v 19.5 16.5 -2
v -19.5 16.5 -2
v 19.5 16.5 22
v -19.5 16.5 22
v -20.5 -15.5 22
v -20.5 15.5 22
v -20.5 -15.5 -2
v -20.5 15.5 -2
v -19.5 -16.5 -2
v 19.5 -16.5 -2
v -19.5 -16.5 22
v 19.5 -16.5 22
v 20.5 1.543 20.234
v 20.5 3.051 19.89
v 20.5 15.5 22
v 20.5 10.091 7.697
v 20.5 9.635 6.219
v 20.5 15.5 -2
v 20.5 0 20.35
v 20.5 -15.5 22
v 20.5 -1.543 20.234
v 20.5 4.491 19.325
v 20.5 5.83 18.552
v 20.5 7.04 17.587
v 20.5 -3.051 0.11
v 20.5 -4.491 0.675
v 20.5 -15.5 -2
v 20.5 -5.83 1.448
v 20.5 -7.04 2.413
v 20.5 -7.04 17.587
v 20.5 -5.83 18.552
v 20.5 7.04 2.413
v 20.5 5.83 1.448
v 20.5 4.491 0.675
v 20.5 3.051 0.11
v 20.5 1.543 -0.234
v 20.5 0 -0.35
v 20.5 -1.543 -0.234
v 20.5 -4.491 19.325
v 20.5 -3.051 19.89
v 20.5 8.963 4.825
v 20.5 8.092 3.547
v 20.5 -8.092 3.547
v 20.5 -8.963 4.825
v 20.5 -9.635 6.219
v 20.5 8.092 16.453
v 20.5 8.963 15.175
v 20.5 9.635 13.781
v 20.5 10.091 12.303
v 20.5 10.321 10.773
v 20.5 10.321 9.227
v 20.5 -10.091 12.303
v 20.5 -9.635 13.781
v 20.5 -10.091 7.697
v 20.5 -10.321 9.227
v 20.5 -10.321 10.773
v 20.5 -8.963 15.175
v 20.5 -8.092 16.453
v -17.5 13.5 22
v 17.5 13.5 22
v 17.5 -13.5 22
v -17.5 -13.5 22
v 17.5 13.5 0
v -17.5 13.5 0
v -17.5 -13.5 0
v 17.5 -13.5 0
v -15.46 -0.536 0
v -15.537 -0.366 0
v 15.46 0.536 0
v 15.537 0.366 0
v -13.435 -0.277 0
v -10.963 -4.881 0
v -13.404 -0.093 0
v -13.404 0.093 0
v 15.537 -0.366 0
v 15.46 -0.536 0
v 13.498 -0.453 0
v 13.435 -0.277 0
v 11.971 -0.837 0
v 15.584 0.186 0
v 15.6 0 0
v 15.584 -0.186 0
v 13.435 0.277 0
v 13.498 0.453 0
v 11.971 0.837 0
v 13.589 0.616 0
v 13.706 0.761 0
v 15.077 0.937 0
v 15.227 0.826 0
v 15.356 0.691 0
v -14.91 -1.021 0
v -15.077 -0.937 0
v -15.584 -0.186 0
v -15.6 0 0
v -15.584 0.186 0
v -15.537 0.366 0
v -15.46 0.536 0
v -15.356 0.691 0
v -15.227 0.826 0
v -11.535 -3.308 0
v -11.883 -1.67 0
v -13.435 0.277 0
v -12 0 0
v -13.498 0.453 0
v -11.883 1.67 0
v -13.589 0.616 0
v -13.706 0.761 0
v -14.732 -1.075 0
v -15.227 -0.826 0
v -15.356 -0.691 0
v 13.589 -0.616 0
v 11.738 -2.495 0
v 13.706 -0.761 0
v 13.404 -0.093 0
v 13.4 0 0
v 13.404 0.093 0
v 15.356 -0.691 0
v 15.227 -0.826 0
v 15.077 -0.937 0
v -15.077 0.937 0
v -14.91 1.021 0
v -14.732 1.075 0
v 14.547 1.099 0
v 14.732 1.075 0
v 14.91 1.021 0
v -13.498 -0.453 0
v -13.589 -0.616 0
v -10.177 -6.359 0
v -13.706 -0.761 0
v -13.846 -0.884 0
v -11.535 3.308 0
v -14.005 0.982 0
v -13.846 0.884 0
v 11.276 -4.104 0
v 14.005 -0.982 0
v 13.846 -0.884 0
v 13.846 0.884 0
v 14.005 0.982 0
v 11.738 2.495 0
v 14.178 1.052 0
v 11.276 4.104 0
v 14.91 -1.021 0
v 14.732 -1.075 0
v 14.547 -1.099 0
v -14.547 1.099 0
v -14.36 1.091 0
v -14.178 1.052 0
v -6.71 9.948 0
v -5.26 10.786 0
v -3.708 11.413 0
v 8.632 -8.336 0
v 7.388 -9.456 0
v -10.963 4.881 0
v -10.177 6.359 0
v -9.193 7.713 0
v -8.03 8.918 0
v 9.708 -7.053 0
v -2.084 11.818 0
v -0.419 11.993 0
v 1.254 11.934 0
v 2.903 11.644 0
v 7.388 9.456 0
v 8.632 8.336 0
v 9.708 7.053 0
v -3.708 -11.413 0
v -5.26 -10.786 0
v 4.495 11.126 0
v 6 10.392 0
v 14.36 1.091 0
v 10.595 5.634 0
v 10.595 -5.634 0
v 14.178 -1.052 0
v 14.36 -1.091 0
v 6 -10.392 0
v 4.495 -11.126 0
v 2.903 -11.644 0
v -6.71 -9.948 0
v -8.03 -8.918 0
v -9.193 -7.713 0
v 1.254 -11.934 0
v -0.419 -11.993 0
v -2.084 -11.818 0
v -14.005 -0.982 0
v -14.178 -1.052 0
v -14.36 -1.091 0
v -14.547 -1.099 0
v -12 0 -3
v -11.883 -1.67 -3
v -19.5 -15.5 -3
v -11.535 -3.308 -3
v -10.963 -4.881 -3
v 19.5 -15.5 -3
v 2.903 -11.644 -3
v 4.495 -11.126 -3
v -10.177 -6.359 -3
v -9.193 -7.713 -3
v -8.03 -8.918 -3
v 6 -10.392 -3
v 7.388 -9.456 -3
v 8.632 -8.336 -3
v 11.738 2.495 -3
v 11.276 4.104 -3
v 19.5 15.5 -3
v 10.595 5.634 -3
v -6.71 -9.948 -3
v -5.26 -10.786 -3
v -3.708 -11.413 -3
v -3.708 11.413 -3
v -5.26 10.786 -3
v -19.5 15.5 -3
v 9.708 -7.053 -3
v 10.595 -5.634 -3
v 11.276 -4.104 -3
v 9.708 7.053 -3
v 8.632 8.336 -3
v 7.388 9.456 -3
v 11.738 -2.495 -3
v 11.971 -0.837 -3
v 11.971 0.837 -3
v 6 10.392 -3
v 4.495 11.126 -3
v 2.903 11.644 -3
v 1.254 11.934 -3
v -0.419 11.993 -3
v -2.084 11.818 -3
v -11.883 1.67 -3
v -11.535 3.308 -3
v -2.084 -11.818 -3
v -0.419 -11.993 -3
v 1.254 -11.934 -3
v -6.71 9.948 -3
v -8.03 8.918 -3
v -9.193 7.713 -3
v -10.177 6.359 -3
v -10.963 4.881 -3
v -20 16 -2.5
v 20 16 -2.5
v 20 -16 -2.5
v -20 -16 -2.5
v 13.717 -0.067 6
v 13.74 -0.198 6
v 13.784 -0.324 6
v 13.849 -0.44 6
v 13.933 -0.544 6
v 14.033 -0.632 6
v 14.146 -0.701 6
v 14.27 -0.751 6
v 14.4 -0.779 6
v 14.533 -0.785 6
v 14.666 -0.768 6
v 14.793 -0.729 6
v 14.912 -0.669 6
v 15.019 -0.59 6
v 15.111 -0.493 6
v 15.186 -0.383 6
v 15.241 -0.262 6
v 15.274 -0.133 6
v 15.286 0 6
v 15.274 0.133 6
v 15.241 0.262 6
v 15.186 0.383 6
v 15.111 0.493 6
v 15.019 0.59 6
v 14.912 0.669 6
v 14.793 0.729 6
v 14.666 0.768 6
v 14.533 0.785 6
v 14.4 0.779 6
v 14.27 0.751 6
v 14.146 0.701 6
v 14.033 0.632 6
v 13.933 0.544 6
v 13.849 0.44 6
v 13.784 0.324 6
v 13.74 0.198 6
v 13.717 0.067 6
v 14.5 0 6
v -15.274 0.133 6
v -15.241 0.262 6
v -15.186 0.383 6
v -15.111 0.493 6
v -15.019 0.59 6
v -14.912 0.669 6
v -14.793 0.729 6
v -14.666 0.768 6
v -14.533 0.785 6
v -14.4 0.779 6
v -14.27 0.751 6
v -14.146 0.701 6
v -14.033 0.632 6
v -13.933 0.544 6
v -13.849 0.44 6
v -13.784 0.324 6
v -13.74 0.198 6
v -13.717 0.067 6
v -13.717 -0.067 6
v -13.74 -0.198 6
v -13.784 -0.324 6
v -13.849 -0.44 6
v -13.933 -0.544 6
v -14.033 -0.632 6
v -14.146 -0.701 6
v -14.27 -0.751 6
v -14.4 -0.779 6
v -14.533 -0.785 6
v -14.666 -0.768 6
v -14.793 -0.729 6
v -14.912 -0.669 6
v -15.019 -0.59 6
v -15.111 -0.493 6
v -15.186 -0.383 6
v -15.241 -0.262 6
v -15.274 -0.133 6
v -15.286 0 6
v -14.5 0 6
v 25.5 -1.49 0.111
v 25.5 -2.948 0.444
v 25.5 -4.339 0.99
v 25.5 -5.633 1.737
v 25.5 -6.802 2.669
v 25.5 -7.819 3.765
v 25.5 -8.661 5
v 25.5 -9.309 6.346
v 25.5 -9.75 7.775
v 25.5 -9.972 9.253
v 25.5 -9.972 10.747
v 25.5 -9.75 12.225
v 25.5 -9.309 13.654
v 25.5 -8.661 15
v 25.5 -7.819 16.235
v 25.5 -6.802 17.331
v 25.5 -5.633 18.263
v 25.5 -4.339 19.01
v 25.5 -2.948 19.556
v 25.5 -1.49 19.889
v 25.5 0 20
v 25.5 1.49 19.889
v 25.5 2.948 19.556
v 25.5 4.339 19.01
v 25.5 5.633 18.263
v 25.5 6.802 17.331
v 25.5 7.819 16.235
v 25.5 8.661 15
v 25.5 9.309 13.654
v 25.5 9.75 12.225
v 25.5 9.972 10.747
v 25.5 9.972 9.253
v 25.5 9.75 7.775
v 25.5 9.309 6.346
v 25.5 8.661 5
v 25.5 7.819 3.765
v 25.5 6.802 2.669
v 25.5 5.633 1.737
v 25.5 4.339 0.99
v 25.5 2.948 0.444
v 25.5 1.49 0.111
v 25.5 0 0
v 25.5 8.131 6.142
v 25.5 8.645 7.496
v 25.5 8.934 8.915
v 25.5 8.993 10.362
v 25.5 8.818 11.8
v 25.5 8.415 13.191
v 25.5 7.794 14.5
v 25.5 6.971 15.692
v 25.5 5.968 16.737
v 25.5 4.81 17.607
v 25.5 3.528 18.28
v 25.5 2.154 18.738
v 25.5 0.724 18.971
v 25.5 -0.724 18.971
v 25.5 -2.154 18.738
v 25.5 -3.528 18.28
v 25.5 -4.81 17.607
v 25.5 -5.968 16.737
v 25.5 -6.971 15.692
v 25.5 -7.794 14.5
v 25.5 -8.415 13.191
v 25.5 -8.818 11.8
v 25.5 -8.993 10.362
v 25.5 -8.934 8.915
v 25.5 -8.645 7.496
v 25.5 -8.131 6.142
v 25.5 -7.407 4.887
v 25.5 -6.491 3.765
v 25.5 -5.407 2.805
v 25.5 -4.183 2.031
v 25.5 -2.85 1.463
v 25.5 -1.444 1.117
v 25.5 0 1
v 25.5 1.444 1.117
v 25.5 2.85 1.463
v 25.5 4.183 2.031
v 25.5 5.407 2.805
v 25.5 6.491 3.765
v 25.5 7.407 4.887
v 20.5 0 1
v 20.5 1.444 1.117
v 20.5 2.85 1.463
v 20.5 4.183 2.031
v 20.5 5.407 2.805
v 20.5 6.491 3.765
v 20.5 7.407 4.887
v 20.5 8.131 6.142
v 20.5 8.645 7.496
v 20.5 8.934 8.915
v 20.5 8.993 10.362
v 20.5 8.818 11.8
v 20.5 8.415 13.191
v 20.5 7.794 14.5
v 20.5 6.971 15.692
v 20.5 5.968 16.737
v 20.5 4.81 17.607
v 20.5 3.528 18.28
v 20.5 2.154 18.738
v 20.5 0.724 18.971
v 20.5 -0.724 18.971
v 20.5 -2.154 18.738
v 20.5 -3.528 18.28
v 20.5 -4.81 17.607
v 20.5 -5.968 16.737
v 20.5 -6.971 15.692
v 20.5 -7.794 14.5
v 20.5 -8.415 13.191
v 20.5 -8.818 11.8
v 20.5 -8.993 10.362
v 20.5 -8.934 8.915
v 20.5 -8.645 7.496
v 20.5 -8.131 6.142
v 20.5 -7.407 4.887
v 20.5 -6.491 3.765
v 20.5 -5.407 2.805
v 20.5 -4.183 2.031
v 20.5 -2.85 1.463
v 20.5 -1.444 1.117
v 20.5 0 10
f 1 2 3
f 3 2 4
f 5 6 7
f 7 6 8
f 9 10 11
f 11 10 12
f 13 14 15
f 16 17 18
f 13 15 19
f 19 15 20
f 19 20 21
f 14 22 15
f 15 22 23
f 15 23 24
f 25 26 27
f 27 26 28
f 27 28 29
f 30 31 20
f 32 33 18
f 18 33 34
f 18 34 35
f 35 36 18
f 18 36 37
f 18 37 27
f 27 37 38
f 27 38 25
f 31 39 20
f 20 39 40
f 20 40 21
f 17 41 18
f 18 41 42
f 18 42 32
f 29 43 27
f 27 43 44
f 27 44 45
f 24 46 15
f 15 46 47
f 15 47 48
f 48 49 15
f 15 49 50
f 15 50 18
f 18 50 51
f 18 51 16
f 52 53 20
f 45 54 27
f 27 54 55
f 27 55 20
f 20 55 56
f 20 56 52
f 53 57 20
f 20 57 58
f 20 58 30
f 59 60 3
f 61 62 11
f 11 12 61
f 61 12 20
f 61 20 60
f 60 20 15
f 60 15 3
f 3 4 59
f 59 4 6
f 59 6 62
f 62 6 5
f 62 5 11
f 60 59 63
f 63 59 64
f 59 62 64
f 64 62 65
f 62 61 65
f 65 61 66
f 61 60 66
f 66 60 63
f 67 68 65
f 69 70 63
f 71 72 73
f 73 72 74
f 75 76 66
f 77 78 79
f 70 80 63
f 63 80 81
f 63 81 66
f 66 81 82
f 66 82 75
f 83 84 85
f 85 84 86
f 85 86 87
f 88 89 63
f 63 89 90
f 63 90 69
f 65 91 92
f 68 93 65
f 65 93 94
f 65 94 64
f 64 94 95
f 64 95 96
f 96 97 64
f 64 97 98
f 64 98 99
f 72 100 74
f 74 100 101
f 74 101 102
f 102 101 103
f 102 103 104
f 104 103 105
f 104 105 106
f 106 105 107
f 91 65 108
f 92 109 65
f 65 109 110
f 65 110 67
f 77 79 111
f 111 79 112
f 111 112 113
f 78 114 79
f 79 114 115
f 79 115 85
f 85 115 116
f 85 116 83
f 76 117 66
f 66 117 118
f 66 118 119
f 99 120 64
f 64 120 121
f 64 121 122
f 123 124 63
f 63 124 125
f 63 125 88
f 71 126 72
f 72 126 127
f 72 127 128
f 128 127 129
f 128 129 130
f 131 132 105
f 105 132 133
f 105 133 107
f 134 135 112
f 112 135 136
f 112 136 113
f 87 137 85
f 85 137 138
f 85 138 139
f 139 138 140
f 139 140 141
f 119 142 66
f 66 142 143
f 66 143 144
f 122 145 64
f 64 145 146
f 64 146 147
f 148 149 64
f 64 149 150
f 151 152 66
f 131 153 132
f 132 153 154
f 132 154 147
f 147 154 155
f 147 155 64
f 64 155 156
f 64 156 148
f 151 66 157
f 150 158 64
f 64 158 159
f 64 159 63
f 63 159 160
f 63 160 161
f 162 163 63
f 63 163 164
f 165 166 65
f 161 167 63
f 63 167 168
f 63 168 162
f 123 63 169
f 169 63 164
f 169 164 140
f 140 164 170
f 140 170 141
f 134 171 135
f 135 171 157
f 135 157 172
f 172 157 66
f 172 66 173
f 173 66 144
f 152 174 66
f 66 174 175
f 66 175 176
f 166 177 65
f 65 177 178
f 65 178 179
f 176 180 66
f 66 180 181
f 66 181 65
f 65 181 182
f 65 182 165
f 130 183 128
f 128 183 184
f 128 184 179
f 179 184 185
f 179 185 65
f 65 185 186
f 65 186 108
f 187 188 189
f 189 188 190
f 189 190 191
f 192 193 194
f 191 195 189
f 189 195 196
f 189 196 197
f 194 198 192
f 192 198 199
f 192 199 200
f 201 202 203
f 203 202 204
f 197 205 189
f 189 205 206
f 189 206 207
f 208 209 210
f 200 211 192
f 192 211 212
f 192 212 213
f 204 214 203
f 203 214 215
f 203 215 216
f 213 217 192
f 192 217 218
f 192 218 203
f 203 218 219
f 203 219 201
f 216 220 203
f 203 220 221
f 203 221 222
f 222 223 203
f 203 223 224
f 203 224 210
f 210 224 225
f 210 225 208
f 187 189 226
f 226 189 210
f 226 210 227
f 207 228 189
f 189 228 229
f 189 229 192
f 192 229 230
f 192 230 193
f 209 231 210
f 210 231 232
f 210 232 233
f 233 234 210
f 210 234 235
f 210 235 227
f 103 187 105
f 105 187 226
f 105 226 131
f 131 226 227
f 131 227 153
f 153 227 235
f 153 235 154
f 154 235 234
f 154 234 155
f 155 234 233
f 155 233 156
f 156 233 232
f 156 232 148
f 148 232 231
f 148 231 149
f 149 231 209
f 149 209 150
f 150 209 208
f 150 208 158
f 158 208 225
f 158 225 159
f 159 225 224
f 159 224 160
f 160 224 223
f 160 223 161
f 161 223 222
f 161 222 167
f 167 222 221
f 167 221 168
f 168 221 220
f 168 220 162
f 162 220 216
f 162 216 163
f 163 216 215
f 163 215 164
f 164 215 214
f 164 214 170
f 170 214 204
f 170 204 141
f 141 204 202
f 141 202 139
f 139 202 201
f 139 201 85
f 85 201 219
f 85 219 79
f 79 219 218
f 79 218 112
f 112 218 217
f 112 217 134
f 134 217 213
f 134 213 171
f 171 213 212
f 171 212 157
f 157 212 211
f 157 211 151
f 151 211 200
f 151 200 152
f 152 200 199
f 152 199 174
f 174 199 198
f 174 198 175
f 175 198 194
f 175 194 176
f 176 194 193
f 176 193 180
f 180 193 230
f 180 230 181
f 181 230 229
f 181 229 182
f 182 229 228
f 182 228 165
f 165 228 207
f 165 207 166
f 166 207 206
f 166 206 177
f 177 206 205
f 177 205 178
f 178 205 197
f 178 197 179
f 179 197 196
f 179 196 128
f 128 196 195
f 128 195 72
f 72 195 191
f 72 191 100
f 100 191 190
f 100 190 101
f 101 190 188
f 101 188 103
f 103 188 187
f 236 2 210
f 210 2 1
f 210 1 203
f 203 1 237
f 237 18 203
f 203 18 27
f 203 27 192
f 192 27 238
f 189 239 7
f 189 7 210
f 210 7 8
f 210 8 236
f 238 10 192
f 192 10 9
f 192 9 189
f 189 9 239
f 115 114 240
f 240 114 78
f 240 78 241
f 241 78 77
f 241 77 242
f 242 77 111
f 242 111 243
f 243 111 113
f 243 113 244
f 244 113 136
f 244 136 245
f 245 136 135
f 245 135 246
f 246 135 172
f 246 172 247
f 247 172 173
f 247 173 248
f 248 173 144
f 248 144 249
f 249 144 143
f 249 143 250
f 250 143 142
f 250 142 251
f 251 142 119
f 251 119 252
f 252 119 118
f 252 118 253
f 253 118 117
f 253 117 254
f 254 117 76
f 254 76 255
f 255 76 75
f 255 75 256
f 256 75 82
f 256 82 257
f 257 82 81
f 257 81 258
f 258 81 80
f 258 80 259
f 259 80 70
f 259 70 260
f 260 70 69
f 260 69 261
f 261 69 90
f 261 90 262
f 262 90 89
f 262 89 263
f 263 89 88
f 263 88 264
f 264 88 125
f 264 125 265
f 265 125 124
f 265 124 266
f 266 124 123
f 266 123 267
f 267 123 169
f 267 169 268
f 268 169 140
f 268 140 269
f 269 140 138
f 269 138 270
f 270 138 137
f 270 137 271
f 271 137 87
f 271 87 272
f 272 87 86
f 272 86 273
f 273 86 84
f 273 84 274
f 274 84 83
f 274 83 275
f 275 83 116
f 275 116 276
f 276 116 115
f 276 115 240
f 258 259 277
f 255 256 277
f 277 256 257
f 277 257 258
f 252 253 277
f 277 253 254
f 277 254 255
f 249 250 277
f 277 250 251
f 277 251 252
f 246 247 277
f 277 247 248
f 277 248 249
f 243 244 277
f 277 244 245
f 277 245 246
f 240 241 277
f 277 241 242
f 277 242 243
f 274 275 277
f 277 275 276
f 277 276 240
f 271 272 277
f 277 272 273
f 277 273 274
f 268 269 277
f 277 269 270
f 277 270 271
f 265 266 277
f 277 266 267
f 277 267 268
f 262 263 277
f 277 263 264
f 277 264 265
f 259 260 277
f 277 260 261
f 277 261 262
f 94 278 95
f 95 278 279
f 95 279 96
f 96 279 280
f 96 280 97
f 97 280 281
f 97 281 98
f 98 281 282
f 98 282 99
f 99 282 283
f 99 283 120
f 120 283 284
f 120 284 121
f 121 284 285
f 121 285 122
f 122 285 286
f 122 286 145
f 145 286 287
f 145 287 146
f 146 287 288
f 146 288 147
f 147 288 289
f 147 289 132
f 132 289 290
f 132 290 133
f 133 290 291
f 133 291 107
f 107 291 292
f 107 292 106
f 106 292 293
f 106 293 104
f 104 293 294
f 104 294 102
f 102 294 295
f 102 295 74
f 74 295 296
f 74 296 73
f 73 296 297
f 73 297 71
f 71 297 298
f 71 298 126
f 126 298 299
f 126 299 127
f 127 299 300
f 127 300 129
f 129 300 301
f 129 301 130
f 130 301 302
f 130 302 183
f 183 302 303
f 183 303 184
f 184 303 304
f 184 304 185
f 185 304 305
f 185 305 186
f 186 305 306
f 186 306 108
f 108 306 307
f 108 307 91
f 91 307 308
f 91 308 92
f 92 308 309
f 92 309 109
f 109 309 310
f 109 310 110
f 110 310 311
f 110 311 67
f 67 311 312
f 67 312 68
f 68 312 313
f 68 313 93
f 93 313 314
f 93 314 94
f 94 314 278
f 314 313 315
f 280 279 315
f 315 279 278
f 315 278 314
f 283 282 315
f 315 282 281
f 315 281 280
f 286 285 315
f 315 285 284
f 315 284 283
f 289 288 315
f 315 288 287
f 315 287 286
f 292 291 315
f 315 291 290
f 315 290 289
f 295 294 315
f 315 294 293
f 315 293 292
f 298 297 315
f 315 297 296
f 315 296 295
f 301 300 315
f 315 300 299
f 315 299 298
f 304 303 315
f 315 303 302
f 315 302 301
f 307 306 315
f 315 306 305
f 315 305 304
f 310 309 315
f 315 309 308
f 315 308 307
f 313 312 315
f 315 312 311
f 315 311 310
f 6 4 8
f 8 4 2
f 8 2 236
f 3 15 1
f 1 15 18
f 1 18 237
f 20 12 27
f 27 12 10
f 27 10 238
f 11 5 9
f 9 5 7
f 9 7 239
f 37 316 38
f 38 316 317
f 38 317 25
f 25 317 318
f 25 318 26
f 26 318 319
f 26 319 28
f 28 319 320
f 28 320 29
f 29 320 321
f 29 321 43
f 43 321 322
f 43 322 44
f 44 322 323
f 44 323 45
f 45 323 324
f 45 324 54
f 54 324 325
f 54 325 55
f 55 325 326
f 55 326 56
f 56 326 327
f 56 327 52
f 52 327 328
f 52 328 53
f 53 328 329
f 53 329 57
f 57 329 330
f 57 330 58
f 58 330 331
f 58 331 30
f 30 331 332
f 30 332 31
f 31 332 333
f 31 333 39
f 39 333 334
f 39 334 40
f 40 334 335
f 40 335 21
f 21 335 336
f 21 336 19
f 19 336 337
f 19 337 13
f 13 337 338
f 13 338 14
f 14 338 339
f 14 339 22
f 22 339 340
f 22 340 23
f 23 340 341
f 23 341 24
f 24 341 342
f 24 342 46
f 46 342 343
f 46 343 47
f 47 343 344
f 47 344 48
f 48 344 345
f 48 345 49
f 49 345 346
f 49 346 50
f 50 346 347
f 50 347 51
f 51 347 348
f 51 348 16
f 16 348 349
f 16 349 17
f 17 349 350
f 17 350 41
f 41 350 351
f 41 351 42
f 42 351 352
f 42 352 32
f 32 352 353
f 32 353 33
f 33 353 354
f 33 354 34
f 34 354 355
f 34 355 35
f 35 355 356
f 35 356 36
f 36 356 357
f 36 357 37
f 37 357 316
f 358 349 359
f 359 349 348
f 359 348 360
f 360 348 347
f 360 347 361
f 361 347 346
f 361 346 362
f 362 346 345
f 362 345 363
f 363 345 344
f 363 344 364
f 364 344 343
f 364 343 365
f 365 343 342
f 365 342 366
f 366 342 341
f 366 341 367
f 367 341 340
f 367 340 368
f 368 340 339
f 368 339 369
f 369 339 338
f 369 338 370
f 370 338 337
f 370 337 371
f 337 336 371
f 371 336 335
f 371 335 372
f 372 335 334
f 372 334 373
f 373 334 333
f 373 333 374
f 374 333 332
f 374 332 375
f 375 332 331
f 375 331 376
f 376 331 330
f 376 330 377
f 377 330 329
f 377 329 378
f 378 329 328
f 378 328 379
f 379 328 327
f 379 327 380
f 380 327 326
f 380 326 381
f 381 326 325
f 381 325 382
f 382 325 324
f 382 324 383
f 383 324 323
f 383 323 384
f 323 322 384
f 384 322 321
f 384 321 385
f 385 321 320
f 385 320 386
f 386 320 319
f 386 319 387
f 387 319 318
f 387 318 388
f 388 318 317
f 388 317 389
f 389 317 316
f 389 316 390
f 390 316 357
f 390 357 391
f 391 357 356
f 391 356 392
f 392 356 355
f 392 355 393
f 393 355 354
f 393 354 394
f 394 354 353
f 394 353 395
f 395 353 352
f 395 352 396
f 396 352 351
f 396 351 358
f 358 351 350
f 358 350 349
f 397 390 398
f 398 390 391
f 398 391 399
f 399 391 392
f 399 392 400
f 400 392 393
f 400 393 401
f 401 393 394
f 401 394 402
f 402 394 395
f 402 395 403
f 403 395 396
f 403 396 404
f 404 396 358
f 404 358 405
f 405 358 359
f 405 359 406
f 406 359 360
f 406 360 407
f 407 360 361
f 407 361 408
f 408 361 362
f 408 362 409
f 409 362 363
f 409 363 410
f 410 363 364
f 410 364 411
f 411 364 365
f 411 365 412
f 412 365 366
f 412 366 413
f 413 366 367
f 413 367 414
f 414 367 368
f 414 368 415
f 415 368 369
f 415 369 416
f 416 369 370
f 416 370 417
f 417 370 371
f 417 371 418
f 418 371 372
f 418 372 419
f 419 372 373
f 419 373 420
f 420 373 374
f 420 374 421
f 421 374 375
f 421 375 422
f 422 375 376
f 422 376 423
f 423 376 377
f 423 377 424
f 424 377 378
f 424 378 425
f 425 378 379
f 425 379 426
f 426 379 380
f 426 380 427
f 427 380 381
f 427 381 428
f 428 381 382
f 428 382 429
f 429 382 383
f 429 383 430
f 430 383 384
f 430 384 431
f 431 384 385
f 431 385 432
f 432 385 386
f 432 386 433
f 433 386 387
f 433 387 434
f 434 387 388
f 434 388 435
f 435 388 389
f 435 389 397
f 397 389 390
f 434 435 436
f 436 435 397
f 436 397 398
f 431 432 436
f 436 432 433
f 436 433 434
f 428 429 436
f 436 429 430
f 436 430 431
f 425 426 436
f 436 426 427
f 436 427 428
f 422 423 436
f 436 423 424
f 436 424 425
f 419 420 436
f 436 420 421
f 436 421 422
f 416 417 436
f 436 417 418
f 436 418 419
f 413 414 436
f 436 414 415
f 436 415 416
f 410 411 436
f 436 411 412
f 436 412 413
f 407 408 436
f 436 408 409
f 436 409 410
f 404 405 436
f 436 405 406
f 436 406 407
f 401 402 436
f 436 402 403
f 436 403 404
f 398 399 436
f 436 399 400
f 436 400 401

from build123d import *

# Parameters (mm, degrees)
SKETCH_1_W          = 41
SKETCH_1_H          = 33
SKETCH_1_W_2        = 35
SKETCH_1_H_2        = 27
EXTRUDE_1_DEPTH     = 22
SKETCH_6_W          = 41
SKETCH_6_H          = 33
EXTRUDE_1_2_DEPTH   = 3
SKETCH_7_R          = 12
CUT_EXTRUDE_1_DEPTH = 5
CHAMFER_1_SIZE      = 1
CHAMFER_2_SIZE      = 1
CHAMFER_3_SIZE      = 1
CHAMFER_4_SIZE      = 1
SKETCH_8_R          = 1.1
EXTRUDE_3_DEPTH     = 6
EXTRUDE_3_TAPER     = 3
CHAMFER_5_SIZE      = 1
CHAMFER_6_SIZE      = 1
CHAMFER_7_SIZE      = 1
CHAMFER_8_SIZE      = 1
SKETCH_9_R          = 10.35
EXTRUDE_4_DEPTH     = 5
EXTRUDE_4_TAPER     = 4
SKETCH_10_R         = 9
CUT_EXTRUDE_2_DEPTH = 5


with BuildPart() as part:
    # Эскиз1 → Extrude 1 (new body)
    with BuildSketch(Plane.XY):
        Rectangle(SKETCH_1_W, SKETCH_1_H)
        Rectangle(SKETCH_1_W_2, SKETCH_1_H_2, mode=Mode.SUBTRACT)
    extrude(amount=EXTRUDE_1_DEPTH)

    # Эскиз6 → Extrude 1 2 (add)
    with BuildSketch(Plane(origin=(0, 0, 0), x_dir=(-1, 0, 0), z_dir=(0, 0, -1))):
        Rectangle(SKETCH_6_W, SKETCH_6_H)
    extrude(amount=EXTRUDE_1_2_DEPTH)

    # Эскиз7 → Вырез-Вытянуть1 (cut)
    with BuildSketch(Plane(origin=(0, 0, -3), x_dir=(-1, 0, 0), z_dir=(0, 0, -1))):
        Circle(SKETCH_7_R)
    extrude(amount=-CUT_EXTRUDE_1_DEPTH, mode=Mode.SUBTRACT)

    # Фаска1
    chamfer_1_edges = [part.edges().sort_by_distance(p)[0] for p in [
        (0, 16.5, -3),
    ]]
    chamfer(chamfer_1_edges, length=CHAMFER_1_SIZE)

    # Фаска2
    chamfer_2_edges = [part.edges().sort_by_distance(p)[0] for p in [
        (20.5, -0.5, -3),
    ]]
    chamfer(chamfer_2_edges, length=CHAMFER_2_SIZE)

    # Фаска3
    chamfer_3_edges = [part.edges().sort_by_distance(p)[0] for p in [
        (-20.5, -0.5, -3),
    ]]
    chamfer(chamfer_3_edges, length=CHAMFER_3_SIZE)

    # Фаска4
    chamfer_4_edges = [part.edges().sort_by_distance(p)[0] for p in [
        (0, -16.5, -3),
    ]]
    chamfer(chamfer_4_edges, length=CHAMFER_4_SIZE)

    # Эскиз8 → Бобышка-Вытянуть3 (add)
    with BuildSketch(Plane.XY):
        with Locations((14.5, 0)):
            Circle(SKETCH_8_R)
        with Locations((-14.5, 0)):
            Circle(SKETCH_8_R)
    extrude(amount=EXTRUDE_3_DEPTH, taper=EXTRUDE_3_TAPER)

    # Фаска5
    chamfer_5_edges = [part.edges().sort_by_distance(p)[0] for p in [
        (-20.5, 16.5, 10),
    ]]
    chamfer(chamfer_5_edges, length=CHAMFER_5_SIZE)

    # Фаска6
    chamfer_6_edges = [part.edges().sort_by_distance(p)[0] for p in [
        (20.5, 16.5, 10),
    ]]
    chamfer(chamfer_6_edges, length=CHAMFER_6_SIZE)

    # Фаска7
    chamfer_7_edges = [part.edges().sort_by_distance(p)[0] for p in [
        (20.5, -16.5, 10),
    ]]
    chamfer(chamfer_7_edges, length=CHAMFER_7_SIZE)

    # Фаска8
    chamfer_8_edges = [part.edges().sort_by_distance(p)[0] for p in [
        (-20.5, -16.5, 10),
    ]]
    chamfer(chamfer_8_edges, length=CHAMFER_8_SIZE)

    # Эскиз9 → Бобышка-Вытянуть4 (add)
    with BuildSketch(Plane(origin=(20.5, 0, 0), x_dir=(0, 0, -1), z_dir=(1, 0, 0))):
        with Locations((-10, 0)):
            Circle(SKETCH_9_R)
    extrude(amount=EXTRUDE_4_DEPTH, taper=EXTRUDE_4_TAPER)

    # Эскиз10 → Вырез-Вытянуть2 (cut)
    with BuildSketch(Plane(origin=(25.5, 0, 0), x_dir=(0, 0, -1), z_dir=(1, 0, 0))):
        with Locations((-10, 0)):
            Circle(SKETCH_10_R)
    extrude(amount=-CUT_EXTRUDE_2_DEPTH, mode=Mode.SUBTRACT)


solid = part.part
